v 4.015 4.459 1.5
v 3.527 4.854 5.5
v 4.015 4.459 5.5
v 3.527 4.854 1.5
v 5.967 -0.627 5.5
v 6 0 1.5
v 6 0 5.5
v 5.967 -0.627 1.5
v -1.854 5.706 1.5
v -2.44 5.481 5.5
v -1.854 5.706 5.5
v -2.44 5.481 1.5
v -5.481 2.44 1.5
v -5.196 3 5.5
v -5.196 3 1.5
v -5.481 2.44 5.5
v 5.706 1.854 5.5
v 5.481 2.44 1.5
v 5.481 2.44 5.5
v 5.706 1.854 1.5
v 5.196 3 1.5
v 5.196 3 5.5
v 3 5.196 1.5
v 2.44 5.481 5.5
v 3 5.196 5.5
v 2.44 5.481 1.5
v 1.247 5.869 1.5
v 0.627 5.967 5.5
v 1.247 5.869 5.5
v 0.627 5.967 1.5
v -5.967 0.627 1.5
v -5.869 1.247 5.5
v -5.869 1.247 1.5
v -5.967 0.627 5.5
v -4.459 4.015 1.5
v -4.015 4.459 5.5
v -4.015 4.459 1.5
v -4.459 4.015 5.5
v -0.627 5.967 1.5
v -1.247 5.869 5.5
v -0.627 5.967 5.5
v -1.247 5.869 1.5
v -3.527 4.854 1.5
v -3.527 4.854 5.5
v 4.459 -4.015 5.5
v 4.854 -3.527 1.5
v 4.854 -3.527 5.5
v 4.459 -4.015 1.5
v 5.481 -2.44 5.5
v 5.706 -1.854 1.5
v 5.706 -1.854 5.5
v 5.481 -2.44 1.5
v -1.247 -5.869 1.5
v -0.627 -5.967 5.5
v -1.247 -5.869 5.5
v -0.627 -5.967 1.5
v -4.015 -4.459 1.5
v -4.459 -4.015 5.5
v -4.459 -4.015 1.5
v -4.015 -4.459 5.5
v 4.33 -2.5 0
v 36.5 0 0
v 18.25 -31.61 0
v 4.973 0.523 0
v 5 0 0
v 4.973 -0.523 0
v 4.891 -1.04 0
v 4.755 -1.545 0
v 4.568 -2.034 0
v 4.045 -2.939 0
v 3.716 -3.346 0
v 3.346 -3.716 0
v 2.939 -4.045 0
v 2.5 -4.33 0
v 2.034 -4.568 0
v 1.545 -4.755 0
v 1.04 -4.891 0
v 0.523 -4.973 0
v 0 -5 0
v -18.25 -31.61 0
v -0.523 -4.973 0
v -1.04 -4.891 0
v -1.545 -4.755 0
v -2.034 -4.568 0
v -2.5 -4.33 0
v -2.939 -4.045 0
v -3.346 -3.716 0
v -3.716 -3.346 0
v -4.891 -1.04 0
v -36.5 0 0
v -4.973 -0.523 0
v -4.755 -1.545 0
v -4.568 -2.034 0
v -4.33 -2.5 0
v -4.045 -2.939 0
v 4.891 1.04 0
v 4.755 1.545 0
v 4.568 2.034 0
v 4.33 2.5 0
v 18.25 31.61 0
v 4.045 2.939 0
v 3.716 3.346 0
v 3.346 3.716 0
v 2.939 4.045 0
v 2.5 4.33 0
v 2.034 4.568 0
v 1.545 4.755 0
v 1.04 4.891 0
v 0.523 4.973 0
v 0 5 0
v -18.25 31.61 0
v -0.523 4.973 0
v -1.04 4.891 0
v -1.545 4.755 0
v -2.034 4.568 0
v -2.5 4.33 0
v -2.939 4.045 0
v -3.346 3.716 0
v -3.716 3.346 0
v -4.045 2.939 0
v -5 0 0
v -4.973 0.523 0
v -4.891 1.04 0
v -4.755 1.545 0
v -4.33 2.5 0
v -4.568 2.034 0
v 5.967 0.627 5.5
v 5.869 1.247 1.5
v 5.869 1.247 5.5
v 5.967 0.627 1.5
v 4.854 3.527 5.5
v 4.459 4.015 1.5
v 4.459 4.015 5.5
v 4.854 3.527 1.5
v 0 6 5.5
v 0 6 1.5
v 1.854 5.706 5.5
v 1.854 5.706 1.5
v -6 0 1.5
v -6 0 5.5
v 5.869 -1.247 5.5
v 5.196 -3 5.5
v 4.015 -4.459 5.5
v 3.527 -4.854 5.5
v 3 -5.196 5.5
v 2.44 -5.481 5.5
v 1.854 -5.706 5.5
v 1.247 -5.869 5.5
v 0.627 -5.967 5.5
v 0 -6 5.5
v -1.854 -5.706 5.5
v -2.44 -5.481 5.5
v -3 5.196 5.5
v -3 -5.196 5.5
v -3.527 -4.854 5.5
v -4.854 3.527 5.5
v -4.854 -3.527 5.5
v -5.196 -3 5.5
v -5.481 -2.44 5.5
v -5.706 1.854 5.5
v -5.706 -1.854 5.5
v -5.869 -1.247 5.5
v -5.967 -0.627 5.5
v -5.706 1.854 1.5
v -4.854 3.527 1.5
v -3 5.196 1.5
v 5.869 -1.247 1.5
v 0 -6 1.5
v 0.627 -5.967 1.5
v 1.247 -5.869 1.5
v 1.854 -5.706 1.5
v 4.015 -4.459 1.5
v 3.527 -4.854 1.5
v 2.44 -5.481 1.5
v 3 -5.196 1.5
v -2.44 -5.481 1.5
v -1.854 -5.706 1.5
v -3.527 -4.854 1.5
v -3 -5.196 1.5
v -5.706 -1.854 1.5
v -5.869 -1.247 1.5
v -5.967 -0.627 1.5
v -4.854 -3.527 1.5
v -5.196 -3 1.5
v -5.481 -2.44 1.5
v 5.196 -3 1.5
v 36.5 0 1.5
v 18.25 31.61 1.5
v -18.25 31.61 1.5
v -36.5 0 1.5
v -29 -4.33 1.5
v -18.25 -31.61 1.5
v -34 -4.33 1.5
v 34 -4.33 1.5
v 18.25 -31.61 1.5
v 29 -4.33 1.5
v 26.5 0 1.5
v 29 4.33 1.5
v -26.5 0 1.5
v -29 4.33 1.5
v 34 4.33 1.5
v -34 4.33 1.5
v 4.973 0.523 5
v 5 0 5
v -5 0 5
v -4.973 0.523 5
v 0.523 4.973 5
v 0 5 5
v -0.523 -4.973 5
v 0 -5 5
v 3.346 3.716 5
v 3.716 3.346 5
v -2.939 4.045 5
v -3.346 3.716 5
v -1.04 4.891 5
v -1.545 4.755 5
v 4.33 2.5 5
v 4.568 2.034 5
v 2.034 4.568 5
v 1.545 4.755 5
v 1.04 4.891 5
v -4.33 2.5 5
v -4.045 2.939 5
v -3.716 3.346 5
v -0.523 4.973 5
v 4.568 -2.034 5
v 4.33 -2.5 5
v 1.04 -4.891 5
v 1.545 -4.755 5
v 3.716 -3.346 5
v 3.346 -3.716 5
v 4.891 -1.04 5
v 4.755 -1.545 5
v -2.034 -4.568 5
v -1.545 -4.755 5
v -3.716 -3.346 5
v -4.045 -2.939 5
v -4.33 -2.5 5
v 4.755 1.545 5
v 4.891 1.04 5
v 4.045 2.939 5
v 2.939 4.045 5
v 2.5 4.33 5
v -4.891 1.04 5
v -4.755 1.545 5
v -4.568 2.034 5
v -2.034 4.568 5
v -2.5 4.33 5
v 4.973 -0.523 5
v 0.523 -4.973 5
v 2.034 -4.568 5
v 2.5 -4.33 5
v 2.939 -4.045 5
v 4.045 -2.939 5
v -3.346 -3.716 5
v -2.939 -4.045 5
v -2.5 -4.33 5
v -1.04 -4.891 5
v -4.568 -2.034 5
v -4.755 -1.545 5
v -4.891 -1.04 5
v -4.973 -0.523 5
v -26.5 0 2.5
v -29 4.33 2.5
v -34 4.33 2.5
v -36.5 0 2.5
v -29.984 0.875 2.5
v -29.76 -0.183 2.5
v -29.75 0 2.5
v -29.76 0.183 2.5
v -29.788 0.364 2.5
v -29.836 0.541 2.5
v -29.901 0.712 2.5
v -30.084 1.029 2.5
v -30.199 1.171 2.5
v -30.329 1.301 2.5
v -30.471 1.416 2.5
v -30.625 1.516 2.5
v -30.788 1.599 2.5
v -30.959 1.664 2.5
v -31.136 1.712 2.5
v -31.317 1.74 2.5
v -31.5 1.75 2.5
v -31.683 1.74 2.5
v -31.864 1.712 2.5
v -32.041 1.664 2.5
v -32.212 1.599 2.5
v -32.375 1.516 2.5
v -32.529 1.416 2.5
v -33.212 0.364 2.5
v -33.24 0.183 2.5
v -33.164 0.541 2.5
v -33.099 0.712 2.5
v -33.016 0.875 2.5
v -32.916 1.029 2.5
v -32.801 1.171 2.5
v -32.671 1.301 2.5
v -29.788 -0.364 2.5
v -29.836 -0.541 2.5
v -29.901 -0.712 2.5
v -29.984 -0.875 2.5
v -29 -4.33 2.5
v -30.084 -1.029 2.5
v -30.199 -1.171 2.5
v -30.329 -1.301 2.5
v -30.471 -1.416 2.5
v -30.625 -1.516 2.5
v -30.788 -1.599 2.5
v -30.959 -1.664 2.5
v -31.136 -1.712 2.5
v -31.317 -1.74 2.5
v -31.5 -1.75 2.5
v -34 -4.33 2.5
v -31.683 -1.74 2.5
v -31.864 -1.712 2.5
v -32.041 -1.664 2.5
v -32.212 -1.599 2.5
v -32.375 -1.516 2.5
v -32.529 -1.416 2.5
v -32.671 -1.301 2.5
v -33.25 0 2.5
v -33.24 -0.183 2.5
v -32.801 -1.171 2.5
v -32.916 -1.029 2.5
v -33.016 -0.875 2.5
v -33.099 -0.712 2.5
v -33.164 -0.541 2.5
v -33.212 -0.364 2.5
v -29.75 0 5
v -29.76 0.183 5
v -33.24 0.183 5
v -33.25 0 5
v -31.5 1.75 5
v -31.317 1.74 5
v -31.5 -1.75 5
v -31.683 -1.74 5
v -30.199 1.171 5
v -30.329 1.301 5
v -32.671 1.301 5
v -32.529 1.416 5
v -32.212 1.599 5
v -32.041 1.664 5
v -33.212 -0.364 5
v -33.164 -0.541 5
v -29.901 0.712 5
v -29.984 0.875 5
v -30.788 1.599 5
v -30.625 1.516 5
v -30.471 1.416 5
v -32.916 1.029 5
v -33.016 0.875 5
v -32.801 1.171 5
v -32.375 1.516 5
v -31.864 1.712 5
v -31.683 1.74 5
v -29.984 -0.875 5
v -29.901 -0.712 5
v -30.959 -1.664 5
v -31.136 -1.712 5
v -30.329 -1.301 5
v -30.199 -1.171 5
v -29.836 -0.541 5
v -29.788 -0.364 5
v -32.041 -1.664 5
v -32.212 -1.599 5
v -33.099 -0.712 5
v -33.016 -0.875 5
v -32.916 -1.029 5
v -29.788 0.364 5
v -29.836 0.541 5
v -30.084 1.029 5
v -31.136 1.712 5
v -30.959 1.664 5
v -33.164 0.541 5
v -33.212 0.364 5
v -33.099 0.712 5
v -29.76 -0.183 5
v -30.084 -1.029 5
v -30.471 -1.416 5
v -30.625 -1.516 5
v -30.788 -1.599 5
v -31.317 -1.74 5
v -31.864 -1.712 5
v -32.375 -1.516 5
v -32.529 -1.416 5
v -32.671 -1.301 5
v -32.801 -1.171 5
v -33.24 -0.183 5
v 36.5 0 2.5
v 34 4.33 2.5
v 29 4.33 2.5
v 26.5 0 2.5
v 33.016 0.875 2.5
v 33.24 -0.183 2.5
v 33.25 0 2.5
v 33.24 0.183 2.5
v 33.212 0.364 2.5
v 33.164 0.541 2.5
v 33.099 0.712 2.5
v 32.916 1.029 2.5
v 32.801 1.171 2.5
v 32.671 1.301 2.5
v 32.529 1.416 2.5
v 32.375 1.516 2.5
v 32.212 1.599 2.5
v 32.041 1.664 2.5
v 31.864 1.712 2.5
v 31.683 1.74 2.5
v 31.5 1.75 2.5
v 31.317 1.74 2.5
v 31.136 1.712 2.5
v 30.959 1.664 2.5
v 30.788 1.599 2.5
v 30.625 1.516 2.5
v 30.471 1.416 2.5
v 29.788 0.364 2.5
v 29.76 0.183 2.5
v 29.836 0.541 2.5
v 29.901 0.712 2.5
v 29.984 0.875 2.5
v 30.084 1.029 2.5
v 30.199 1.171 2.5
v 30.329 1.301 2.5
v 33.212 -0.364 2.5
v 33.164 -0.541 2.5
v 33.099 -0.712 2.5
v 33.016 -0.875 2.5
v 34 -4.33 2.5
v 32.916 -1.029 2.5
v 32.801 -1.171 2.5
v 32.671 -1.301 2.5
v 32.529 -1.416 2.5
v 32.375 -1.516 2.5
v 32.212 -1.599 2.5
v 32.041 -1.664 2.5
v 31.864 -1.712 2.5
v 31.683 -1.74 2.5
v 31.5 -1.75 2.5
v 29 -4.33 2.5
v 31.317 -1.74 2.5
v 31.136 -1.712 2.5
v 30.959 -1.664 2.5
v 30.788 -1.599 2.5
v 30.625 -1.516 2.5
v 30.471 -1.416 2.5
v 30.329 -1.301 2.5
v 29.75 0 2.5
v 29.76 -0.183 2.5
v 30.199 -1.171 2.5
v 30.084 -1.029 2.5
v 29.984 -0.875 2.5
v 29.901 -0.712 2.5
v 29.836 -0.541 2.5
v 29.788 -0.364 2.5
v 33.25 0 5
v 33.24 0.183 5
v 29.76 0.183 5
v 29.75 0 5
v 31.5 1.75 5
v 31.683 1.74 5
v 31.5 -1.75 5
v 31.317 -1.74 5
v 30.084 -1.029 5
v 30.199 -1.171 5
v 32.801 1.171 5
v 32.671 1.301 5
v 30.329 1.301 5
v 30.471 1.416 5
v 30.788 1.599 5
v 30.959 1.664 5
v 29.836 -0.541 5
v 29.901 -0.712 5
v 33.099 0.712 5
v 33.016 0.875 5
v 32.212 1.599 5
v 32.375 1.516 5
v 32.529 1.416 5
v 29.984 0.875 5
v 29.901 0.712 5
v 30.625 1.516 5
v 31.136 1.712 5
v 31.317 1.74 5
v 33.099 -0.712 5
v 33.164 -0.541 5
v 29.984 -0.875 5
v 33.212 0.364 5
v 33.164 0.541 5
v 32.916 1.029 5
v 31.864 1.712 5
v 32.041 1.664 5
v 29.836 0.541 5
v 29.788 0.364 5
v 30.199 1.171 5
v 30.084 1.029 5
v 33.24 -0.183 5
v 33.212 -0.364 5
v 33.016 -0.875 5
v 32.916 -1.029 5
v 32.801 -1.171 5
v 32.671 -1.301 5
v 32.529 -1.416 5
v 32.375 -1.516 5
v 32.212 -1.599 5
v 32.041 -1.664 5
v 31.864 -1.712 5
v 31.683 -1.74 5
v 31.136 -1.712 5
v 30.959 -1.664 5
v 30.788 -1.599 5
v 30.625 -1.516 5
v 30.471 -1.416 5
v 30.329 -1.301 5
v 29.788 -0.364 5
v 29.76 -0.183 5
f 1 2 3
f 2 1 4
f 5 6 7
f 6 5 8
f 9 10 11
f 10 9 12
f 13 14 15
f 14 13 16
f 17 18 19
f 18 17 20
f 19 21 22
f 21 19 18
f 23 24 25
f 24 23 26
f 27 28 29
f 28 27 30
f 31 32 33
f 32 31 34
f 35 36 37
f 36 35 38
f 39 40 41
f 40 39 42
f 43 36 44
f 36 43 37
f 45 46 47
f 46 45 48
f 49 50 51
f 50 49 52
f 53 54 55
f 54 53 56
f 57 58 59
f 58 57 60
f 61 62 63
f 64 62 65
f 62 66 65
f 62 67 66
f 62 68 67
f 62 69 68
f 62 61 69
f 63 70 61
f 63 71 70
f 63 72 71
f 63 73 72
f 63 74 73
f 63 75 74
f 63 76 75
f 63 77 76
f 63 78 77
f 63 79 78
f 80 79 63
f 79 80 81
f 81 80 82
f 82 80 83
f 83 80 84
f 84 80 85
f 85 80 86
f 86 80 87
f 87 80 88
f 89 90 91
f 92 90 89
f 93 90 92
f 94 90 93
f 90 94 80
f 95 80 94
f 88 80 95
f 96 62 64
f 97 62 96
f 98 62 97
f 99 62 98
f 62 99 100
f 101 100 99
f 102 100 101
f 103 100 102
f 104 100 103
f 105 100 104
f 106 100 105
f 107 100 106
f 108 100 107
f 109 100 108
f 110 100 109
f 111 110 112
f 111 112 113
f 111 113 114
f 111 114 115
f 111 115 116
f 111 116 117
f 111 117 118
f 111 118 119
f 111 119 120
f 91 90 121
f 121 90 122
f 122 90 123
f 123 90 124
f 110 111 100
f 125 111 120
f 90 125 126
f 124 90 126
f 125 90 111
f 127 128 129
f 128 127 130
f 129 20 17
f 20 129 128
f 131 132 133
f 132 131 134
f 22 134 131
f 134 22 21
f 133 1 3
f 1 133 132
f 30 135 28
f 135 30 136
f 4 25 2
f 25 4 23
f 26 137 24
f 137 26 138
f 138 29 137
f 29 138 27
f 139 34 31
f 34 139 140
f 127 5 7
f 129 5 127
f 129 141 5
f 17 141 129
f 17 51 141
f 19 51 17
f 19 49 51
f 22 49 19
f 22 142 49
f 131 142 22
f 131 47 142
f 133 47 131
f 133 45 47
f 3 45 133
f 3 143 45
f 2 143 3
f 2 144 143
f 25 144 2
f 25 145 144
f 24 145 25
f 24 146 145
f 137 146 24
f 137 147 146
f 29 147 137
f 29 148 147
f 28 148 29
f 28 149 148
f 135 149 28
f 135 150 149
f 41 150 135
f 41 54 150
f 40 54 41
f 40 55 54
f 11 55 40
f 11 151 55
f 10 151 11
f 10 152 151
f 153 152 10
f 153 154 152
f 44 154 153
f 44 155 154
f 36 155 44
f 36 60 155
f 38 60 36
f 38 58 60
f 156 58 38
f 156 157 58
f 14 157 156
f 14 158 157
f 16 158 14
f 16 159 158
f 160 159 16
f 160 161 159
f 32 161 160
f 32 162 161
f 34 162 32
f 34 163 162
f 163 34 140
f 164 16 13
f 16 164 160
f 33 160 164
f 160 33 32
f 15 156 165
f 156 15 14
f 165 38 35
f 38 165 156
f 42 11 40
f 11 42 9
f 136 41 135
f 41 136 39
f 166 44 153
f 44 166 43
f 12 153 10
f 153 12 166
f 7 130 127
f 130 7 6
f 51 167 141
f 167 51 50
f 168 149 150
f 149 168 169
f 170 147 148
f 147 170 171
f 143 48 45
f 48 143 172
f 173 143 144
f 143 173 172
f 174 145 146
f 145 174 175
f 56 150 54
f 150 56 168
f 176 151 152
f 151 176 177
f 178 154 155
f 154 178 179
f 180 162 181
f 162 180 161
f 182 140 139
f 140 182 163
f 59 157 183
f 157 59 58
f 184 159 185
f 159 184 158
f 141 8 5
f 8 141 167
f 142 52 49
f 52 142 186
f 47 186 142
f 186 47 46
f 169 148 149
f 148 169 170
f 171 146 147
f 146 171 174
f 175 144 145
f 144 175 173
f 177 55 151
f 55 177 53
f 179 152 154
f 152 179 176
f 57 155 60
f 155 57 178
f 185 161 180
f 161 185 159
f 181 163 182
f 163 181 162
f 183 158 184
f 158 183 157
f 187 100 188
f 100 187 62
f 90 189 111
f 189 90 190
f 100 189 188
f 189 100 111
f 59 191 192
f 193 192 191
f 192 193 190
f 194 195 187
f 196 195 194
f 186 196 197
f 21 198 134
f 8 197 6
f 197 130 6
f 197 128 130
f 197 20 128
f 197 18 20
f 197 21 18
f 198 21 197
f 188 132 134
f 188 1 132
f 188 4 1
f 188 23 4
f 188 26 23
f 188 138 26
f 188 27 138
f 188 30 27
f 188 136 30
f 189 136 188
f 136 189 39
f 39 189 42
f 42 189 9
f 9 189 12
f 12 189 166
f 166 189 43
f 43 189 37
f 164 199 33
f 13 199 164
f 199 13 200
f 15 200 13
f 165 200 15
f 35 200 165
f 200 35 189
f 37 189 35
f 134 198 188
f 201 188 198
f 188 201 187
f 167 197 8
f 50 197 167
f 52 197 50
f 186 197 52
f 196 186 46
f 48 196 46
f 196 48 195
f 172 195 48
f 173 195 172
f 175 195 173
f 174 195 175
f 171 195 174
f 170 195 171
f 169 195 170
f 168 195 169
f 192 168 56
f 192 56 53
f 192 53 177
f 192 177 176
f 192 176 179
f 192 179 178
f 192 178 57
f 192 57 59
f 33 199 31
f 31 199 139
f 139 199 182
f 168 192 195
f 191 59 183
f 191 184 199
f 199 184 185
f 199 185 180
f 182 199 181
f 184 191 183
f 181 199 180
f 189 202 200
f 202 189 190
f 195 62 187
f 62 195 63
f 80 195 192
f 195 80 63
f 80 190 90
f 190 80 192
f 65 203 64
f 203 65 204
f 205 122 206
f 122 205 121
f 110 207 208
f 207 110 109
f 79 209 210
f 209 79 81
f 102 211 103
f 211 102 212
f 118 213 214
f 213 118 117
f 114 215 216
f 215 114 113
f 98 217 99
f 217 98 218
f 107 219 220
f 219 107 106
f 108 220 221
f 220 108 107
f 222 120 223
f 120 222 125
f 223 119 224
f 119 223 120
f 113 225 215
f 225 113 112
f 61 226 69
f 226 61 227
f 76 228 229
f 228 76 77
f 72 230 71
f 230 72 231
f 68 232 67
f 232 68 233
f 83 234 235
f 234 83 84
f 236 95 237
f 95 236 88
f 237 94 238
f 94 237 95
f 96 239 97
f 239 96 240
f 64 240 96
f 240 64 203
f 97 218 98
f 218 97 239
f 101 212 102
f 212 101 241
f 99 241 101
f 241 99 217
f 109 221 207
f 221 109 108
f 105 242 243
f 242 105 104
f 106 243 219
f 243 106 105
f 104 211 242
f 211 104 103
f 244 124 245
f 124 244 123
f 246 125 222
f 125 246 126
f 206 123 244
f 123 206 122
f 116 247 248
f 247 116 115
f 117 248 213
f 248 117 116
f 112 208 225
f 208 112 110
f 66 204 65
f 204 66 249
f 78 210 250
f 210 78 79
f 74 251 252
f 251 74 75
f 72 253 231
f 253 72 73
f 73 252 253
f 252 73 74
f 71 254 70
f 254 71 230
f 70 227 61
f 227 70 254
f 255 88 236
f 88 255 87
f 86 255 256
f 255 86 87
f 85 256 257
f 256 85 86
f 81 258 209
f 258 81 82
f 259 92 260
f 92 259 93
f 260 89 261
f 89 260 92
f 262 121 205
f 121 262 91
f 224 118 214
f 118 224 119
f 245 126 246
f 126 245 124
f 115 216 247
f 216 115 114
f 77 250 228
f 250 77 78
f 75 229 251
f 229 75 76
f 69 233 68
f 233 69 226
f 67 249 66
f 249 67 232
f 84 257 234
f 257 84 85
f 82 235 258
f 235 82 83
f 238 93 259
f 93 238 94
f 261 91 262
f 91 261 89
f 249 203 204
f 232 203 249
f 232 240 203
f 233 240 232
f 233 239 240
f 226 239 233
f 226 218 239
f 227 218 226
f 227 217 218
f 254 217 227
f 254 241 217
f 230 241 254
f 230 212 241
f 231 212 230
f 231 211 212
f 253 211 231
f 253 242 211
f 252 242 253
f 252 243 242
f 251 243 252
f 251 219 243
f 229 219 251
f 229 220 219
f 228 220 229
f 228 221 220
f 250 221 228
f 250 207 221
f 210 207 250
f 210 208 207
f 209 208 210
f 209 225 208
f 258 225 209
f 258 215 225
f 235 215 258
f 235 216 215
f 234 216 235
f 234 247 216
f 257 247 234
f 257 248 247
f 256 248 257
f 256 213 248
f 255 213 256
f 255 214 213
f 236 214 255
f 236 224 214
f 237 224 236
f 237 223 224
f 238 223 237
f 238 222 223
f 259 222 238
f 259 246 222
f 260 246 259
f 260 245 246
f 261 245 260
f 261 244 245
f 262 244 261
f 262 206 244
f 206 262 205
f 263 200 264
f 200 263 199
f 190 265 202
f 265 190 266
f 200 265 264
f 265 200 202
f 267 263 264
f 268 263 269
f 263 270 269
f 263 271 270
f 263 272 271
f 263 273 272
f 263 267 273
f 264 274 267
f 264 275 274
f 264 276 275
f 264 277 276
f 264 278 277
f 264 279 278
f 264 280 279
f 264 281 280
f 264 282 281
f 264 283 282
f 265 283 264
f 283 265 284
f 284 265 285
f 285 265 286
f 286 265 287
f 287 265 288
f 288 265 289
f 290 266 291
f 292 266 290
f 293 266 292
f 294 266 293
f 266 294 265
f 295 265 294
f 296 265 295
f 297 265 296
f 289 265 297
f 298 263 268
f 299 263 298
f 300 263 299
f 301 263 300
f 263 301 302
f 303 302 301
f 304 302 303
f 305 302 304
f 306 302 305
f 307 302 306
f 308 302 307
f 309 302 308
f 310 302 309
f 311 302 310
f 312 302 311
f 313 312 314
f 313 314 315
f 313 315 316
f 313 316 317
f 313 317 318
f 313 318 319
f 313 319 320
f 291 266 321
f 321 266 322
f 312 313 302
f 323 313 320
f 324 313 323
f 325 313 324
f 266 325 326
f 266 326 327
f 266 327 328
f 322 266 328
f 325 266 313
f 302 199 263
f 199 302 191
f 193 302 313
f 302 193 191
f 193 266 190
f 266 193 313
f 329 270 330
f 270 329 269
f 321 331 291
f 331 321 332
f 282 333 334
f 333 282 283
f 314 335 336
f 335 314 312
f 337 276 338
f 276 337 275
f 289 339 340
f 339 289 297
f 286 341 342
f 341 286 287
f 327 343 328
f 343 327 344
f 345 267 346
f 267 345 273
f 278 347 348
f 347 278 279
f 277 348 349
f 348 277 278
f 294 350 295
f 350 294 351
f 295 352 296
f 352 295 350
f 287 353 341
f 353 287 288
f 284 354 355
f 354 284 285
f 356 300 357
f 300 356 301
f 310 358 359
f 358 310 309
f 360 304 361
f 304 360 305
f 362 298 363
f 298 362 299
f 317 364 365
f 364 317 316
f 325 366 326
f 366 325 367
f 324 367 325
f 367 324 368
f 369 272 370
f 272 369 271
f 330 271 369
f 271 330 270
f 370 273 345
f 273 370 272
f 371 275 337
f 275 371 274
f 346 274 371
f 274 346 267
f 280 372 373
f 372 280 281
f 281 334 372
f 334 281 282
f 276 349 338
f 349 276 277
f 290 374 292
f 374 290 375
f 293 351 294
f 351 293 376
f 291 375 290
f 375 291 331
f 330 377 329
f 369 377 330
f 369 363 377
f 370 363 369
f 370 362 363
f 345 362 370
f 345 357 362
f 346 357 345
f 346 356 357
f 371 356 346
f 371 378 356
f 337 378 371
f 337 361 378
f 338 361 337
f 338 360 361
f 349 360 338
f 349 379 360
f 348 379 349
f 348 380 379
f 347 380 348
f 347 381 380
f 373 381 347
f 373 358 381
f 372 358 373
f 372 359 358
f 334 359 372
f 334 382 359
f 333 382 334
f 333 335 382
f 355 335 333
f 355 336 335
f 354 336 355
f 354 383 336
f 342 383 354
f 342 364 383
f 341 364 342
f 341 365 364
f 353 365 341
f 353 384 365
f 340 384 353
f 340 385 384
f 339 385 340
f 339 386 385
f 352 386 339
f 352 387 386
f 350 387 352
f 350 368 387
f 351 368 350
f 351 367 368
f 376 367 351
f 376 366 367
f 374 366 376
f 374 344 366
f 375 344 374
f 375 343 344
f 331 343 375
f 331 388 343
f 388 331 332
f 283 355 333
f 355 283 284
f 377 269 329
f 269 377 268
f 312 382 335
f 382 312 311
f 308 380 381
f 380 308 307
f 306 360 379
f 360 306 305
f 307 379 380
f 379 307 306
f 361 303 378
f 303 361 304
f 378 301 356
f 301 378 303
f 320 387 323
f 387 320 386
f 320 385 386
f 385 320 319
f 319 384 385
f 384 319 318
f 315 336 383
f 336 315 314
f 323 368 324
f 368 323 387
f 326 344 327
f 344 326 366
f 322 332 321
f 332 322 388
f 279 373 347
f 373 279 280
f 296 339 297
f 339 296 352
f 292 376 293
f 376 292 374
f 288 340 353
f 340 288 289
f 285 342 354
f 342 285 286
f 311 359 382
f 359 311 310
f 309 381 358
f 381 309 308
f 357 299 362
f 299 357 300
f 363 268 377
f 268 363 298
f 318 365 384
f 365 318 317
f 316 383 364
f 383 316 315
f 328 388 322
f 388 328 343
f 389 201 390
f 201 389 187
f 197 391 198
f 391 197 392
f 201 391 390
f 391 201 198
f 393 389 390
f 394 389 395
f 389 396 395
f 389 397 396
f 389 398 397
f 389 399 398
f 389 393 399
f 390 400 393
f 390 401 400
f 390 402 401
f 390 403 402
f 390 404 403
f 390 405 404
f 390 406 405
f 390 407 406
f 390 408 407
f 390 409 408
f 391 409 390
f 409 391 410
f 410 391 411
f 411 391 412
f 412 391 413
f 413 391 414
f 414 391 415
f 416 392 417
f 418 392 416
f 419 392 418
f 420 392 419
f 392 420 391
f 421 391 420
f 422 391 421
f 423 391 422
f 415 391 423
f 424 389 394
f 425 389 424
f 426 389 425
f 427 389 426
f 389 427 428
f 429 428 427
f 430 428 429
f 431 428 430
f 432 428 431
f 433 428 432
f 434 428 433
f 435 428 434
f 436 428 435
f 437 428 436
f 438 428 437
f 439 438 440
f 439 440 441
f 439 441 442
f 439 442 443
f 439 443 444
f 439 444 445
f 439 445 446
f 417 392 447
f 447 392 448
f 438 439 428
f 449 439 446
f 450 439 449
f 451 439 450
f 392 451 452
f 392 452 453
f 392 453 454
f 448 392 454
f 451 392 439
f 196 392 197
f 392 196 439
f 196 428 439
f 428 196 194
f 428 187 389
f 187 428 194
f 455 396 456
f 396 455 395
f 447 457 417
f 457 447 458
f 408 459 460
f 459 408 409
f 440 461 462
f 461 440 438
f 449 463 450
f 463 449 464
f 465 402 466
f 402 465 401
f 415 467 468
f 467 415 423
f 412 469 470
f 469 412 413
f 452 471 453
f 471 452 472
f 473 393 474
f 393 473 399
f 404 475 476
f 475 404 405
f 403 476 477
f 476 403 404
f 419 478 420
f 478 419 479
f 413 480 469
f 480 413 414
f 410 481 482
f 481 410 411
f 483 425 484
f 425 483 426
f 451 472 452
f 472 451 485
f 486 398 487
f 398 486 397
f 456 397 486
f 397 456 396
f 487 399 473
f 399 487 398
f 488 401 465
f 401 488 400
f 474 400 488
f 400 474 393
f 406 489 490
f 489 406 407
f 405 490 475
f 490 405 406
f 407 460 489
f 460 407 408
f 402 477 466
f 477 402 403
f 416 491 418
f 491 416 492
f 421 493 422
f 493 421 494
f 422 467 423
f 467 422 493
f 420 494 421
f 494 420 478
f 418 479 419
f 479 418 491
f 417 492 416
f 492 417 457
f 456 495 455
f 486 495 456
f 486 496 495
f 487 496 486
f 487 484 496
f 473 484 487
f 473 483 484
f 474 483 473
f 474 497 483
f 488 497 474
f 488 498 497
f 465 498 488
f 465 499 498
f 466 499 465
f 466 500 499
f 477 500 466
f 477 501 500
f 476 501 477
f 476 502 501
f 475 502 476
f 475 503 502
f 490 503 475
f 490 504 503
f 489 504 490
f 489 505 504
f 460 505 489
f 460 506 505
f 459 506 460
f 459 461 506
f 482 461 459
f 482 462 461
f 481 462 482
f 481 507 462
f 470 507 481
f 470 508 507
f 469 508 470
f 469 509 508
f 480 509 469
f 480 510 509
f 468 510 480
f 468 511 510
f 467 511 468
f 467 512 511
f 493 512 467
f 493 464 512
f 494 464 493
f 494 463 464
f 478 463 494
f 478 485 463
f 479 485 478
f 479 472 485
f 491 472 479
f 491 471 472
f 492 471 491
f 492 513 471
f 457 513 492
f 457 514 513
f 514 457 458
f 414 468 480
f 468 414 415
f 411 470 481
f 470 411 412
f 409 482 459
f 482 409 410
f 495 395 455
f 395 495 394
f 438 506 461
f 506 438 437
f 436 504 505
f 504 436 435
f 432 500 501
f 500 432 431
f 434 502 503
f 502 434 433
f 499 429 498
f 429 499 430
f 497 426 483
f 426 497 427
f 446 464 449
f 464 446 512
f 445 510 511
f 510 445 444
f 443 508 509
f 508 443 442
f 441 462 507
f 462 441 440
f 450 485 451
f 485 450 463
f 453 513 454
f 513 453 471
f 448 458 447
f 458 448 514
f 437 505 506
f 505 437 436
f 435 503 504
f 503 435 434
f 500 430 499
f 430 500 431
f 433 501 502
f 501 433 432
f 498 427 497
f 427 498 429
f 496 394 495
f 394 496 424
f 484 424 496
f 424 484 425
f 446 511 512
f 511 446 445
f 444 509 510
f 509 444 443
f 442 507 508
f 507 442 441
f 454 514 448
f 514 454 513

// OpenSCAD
dia_big=73;
dia_small=10;
dia_spring=3.5;
dia_interface=9+1;
interface_z=5;
size_z=2.5;
wall_size=1.5;

difference(){
	union(){
	translate([0,0,(interface_z+0.5)/2]) //top cylinder
	cylinder(h=interface_z+0.5,d1=dia_interface+2,d2=dia_interface+2,$fn=60, center=true);
	
	translate([0,0,wall_size/2]) // hexagon_big
	cylinder(h=wall_size,d1=dia_big,d2=dia_big, $fn=6, center=true);
	}
	
	translate([0,0,interface_z/2]) //hole
	cylinder(h=interface_z,d1=dia_interface,d2=dia_interface,$fn=60, center=true );
}

for(i=[-1:2:1])
{
	translate([i*(dia_big/2-dia_small/2),0,0])
	{
		translate([0,0,wall_size+(size_z-wall_size)/2]) //hexagons_small
		cylinder(h=size_z-wall_size,d1=dia_small, d2=dia_small, $fn=6, center=true);

		translate([0,0,size_z/2+size_z])
		cylinder(h=size_z,d1=dia_spring,d2=dia_spring, $fn=60, center=true);
	}
}
